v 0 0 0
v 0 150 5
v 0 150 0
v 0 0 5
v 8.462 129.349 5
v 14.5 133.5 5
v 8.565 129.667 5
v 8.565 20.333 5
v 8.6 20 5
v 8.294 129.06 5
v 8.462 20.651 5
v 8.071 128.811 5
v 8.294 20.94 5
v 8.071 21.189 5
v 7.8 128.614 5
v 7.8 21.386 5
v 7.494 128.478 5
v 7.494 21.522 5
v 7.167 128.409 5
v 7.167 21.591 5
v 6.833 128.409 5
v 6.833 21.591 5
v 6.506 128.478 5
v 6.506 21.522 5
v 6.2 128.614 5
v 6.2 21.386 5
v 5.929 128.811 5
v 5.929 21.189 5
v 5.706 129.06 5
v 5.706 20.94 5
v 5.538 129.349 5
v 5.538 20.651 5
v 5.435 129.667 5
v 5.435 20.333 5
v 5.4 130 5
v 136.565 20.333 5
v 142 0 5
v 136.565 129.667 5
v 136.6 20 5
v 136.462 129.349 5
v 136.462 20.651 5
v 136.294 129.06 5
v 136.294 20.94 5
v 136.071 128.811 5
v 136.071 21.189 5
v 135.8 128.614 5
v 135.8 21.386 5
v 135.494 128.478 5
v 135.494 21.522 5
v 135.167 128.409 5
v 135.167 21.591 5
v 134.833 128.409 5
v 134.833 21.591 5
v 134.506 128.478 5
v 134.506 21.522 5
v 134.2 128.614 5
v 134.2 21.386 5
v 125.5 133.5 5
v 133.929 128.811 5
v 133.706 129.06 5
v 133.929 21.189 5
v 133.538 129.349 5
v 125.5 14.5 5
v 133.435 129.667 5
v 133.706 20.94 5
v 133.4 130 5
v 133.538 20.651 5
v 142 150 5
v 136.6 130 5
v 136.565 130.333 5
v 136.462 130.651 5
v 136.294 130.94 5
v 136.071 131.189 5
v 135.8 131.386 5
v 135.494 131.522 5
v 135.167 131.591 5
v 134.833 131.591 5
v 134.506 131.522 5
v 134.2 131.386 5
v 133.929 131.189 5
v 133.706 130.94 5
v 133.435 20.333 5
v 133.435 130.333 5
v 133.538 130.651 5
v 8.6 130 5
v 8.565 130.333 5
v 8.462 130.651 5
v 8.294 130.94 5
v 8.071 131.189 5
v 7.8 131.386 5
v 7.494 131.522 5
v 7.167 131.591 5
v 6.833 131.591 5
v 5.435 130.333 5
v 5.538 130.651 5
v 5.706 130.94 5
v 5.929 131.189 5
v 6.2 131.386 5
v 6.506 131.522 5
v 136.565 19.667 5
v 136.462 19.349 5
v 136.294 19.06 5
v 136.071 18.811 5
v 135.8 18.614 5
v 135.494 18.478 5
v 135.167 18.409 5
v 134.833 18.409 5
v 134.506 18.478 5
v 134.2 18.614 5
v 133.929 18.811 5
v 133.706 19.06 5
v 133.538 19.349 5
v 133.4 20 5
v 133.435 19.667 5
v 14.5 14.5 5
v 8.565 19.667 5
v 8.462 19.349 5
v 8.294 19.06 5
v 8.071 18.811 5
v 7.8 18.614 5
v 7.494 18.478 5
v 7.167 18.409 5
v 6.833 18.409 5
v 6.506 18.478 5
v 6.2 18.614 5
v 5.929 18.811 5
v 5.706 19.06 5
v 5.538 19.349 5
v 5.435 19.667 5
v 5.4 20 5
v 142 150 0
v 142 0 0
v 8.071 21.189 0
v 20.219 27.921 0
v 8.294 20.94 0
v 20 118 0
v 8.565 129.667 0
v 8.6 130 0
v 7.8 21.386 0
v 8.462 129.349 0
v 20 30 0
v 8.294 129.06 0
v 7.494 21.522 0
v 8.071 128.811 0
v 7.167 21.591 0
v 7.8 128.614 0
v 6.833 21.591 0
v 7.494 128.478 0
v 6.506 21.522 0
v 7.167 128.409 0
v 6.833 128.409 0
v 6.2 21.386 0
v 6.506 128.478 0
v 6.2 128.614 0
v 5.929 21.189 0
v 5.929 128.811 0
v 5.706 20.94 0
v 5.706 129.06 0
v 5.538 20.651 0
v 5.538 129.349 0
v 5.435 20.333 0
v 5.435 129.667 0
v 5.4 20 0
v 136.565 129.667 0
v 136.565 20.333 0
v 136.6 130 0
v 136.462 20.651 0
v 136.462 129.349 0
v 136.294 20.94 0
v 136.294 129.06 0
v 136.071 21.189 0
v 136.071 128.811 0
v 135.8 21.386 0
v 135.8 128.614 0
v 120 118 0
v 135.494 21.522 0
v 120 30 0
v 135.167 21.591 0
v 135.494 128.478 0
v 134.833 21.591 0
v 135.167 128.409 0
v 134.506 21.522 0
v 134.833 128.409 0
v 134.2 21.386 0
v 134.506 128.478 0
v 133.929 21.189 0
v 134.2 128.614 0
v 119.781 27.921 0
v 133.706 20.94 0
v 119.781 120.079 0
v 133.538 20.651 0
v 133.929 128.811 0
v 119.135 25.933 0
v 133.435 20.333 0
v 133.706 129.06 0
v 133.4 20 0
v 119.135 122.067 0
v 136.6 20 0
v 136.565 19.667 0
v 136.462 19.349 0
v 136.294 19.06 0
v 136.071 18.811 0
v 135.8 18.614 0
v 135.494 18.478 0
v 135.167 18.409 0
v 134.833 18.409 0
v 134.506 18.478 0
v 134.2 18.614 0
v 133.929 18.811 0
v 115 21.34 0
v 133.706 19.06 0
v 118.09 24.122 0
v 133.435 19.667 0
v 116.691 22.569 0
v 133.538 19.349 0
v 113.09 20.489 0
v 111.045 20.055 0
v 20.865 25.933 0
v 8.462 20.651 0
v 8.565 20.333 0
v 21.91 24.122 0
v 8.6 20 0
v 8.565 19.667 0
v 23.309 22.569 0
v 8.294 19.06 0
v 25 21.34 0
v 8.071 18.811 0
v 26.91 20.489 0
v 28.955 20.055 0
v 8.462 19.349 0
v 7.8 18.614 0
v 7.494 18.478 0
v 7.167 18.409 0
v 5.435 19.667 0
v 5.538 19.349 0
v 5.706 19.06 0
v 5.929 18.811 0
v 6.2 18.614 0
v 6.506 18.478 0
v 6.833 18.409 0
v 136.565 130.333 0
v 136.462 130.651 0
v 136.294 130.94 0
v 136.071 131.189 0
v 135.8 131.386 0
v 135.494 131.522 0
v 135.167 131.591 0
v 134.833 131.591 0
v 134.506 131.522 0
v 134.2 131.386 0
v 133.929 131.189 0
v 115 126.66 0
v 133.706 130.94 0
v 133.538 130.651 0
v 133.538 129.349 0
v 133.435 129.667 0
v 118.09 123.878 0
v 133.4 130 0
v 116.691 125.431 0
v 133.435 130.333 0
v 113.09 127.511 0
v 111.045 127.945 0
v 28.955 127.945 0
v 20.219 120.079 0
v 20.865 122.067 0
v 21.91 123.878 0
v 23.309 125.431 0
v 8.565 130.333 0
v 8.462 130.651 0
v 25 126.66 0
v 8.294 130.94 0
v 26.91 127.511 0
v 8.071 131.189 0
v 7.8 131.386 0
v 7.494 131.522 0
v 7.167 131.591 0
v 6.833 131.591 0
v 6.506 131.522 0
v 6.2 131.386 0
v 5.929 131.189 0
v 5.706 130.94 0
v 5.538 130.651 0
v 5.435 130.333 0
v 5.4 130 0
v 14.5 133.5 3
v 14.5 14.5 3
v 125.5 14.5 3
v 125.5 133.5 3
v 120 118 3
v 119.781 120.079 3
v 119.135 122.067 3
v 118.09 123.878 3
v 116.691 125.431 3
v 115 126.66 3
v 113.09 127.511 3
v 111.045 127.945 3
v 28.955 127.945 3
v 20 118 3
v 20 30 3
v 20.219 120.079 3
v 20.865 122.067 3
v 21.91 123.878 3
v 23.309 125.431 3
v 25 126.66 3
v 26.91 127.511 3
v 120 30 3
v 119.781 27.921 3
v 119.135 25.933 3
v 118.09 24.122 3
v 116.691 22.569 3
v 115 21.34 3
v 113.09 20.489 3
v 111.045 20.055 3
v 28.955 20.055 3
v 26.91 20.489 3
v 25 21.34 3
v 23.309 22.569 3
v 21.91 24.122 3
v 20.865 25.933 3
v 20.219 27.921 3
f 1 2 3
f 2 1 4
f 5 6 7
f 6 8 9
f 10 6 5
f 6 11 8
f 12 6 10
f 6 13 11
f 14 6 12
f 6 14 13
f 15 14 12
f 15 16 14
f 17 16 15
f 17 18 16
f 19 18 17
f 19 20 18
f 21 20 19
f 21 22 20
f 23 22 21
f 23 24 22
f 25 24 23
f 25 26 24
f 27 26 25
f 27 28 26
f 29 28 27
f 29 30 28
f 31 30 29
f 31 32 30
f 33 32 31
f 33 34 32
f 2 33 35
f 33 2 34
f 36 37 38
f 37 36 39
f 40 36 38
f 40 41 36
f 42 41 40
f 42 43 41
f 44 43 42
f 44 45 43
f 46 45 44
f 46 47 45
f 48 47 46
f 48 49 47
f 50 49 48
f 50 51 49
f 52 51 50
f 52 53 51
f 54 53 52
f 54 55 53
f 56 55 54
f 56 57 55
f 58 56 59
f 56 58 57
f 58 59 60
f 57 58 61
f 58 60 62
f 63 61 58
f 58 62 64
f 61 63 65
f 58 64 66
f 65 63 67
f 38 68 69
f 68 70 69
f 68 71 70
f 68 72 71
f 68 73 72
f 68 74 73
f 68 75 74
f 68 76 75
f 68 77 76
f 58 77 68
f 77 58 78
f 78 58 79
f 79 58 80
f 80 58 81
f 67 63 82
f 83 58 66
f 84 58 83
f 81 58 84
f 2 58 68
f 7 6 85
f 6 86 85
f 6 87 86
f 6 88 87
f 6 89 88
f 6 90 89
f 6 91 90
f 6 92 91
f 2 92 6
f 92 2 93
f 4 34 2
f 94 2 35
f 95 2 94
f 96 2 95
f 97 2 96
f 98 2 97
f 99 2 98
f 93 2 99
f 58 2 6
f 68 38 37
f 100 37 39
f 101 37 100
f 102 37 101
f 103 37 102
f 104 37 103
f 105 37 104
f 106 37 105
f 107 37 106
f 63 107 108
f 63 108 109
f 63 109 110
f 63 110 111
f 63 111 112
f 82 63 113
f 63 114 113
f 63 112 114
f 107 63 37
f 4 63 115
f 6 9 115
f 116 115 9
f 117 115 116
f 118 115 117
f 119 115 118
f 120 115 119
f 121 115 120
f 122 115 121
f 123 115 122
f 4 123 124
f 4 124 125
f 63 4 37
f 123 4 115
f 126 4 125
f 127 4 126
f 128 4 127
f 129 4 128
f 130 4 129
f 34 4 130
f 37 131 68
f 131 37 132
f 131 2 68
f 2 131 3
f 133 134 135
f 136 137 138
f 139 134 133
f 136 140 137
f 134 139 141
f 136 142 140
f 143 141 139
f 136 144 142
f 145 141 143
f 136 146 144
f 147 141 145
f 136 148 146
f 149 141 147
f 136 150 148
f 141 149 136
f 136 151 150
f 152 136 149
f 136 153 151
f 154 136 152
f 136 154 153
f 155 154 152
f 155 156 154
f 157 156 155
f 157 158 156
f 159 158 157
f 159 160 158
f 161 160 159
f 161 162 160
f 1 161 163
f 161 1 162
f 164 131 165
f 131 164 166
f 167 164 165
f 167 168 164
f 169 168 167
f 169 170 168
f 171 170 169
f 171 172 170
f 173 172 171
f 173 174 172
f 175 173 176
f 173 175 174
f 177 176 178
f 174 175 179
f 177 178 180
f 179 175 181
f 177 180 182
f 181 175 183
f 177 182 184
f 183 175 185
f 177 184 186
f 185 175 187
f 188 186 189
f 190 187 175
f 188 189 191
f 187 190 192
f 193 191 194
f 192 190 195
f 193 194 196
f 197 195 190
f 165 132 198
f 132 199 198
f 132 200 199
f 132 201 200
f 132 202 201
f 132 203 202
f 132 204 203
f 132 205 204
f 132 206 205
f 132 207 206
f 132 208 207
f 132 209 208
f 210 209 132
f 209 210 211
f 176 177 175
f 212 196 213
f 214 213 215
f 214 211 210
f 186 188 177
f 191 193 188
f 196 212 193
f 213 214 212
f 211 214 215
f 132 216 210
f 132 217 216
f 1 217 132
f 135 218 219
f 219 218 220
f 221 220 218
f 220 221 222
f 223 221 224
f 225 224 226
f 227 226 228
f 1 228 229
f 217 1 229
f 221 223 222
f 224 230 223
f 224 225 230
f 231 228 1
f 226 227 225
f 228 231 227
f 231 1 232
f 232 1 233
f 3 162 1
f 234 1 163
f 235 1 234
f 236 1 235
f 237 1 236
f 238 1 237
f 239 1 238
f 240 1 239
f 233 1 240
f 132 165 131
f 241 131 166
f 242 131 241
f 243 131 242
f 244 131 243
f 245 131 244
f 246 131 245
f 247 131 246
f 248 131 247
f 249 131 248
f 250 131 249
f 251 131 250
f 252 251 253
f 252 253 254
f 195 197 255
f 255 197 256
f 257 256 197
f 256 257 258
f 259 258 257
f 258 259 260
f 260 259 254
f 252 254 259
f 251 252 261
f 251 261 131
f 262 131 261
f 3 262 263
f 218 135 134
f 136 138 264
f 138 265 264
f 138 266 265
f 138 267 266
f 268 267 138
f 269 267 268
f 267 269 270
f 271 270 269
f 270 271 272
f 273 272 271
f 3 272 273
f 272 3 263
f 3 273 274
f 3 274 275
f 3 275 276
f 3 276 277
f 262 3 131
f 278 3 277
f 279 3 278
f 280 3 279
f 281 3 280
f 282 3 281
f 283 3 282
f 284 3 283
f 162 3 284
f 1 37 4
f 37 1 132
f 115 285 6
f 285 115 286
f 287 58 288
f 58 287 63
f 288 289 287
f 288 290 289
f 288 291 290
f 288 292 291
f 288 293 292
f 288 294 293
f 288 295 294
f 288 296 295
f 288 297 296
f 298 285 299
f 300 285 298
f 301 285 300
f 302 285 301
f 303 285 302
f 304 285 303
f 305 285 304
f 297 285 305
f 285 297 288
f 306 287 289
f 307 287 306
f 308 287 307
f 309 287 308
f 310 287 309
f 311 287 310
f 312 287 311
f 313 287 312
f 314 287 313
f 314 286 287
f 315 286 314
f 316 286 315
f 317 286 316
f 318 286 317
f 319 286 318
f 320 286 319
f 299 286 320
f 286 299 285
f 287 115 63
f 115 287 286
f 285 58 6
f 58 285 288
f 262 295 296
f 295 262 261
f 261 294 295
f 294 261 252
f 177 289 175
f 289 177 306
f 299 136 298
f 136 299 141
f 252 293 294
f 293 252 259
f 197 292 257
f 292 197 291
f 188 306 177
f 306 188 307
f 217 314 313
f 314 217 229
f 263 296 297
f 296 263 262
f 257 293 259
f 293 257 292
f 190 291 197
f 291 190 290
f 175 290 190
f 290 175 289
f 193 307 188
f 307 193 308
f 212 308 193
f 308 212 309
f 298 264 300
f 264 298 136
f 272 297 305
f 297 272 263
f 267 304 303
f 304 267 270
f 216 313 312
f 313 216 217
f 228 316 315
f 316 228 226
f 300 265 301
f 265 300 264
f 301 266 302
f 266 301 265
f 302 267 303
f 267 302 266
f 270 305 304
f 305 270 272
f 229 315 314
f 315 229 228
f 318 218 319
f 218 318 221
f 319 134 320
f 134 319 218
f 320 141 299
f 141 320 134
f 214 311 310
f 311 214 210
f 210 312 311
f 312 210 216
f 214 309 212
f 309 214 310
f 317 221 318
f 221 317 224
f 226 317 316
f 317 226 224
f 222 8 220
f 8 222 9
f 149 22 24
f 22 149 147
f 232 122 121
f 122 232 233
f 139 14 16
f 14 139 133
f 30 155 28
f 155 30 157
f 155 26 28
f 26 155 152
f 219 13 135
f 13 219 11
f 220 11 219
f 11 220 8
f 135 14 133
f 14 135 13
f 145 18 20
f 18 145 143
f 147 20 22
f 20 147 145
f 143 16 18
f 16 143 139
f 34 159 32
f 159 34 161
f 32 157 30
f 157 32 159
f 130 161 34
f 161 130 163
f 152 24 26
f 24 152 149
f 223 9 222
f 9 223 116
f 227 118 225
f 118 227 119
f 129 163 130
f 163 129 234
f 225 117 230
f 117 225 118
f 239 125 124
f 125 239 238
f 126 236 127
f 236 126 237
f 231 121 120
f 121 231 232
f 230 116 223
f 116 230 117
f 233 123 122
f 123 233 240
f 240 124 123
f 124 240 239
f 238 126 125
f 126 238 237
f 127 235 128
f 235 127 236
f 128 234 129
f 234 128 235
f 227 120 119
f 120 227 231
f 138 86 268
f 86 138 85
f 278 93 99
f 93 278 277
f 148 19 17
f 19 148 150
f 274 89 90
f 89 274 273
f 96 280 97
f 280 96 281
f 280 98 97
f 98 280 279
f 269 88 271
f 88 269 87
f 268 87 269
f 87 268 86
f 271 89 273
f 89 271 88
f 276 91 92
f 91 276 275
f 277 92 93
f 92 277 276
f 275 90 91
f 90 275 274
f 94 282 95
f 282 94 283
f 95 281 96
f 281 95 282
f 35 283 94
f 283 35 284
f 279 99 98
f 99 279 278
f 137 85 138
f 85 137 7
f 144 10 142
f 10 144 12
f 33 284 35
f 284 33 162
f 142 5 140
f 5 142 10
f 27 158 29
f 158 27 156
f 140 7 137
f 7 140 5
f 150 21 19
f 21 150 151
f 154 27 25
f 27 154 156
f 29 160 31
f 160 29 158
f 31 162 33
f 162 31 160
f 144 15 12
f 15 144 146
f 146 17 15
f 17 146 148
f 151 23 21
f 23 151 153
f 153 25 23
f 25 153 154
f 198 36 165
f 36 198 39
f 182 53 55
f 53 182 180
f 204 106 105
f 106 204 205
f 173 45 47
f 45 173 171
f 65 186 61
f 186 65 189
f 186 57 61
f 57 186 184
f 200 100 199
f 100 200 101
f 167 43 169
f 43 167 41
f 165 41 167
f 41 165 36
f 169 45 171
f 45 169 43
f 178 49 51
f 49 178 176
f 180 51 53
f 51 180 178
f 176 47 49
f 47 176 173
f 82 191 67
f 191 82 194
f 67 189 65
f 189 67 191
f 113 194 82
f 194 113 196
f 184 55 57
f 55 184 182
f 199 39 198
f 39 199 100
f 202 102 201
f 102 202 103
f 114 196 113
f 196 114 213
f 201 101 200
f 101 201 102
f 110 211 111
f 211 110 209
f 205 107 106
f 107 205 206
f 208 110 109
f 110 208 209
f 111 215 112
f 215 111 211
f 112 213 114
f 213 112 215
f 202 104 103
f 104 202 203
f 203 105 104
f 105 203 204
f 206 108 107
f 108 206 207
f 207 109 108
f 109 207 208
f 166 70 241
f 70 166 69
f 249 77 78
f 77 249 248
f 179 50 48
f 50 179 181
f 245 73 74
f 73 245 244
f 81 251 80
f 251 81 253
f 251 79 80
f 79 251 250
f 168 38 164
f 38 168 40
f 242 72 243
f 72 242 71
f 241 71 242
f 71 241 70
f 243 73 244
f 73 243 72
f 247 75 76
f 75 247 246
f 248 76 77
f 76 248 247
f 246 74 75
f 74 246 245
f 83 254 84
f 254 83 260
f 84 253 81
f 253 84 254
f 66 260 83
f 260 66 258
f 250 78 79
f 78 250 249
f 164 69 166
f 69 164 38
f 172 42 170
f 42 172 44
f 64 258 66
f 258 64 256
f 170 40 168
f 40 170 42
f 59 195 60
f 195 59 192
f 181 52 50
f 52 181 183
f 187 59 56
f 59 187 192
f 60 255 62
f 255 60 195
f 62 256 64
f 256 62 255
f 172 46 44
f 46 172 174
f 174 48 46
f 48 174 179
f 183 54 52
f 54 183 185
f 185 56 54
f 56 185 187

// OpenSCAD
$fn=30;
difference(){
cube([142,150,5]);
translate([14.5,14.5,3])cube([111,119,3.5]);
translate([30,30,0])
minkowski(){
    cube([80,88,5]);
    cylinder(d=20,h=0.001);
}
translate([7,20,0])cylinder(d=3.2,h=10);    
translate([7,130,0])cylinder(d=3.2,h=10);    
translate([142-7,20,0])cylinder(d=3.2,h=10);    
translate([142-7,130,0])cylinder(d=3.2,h=10);    
}
